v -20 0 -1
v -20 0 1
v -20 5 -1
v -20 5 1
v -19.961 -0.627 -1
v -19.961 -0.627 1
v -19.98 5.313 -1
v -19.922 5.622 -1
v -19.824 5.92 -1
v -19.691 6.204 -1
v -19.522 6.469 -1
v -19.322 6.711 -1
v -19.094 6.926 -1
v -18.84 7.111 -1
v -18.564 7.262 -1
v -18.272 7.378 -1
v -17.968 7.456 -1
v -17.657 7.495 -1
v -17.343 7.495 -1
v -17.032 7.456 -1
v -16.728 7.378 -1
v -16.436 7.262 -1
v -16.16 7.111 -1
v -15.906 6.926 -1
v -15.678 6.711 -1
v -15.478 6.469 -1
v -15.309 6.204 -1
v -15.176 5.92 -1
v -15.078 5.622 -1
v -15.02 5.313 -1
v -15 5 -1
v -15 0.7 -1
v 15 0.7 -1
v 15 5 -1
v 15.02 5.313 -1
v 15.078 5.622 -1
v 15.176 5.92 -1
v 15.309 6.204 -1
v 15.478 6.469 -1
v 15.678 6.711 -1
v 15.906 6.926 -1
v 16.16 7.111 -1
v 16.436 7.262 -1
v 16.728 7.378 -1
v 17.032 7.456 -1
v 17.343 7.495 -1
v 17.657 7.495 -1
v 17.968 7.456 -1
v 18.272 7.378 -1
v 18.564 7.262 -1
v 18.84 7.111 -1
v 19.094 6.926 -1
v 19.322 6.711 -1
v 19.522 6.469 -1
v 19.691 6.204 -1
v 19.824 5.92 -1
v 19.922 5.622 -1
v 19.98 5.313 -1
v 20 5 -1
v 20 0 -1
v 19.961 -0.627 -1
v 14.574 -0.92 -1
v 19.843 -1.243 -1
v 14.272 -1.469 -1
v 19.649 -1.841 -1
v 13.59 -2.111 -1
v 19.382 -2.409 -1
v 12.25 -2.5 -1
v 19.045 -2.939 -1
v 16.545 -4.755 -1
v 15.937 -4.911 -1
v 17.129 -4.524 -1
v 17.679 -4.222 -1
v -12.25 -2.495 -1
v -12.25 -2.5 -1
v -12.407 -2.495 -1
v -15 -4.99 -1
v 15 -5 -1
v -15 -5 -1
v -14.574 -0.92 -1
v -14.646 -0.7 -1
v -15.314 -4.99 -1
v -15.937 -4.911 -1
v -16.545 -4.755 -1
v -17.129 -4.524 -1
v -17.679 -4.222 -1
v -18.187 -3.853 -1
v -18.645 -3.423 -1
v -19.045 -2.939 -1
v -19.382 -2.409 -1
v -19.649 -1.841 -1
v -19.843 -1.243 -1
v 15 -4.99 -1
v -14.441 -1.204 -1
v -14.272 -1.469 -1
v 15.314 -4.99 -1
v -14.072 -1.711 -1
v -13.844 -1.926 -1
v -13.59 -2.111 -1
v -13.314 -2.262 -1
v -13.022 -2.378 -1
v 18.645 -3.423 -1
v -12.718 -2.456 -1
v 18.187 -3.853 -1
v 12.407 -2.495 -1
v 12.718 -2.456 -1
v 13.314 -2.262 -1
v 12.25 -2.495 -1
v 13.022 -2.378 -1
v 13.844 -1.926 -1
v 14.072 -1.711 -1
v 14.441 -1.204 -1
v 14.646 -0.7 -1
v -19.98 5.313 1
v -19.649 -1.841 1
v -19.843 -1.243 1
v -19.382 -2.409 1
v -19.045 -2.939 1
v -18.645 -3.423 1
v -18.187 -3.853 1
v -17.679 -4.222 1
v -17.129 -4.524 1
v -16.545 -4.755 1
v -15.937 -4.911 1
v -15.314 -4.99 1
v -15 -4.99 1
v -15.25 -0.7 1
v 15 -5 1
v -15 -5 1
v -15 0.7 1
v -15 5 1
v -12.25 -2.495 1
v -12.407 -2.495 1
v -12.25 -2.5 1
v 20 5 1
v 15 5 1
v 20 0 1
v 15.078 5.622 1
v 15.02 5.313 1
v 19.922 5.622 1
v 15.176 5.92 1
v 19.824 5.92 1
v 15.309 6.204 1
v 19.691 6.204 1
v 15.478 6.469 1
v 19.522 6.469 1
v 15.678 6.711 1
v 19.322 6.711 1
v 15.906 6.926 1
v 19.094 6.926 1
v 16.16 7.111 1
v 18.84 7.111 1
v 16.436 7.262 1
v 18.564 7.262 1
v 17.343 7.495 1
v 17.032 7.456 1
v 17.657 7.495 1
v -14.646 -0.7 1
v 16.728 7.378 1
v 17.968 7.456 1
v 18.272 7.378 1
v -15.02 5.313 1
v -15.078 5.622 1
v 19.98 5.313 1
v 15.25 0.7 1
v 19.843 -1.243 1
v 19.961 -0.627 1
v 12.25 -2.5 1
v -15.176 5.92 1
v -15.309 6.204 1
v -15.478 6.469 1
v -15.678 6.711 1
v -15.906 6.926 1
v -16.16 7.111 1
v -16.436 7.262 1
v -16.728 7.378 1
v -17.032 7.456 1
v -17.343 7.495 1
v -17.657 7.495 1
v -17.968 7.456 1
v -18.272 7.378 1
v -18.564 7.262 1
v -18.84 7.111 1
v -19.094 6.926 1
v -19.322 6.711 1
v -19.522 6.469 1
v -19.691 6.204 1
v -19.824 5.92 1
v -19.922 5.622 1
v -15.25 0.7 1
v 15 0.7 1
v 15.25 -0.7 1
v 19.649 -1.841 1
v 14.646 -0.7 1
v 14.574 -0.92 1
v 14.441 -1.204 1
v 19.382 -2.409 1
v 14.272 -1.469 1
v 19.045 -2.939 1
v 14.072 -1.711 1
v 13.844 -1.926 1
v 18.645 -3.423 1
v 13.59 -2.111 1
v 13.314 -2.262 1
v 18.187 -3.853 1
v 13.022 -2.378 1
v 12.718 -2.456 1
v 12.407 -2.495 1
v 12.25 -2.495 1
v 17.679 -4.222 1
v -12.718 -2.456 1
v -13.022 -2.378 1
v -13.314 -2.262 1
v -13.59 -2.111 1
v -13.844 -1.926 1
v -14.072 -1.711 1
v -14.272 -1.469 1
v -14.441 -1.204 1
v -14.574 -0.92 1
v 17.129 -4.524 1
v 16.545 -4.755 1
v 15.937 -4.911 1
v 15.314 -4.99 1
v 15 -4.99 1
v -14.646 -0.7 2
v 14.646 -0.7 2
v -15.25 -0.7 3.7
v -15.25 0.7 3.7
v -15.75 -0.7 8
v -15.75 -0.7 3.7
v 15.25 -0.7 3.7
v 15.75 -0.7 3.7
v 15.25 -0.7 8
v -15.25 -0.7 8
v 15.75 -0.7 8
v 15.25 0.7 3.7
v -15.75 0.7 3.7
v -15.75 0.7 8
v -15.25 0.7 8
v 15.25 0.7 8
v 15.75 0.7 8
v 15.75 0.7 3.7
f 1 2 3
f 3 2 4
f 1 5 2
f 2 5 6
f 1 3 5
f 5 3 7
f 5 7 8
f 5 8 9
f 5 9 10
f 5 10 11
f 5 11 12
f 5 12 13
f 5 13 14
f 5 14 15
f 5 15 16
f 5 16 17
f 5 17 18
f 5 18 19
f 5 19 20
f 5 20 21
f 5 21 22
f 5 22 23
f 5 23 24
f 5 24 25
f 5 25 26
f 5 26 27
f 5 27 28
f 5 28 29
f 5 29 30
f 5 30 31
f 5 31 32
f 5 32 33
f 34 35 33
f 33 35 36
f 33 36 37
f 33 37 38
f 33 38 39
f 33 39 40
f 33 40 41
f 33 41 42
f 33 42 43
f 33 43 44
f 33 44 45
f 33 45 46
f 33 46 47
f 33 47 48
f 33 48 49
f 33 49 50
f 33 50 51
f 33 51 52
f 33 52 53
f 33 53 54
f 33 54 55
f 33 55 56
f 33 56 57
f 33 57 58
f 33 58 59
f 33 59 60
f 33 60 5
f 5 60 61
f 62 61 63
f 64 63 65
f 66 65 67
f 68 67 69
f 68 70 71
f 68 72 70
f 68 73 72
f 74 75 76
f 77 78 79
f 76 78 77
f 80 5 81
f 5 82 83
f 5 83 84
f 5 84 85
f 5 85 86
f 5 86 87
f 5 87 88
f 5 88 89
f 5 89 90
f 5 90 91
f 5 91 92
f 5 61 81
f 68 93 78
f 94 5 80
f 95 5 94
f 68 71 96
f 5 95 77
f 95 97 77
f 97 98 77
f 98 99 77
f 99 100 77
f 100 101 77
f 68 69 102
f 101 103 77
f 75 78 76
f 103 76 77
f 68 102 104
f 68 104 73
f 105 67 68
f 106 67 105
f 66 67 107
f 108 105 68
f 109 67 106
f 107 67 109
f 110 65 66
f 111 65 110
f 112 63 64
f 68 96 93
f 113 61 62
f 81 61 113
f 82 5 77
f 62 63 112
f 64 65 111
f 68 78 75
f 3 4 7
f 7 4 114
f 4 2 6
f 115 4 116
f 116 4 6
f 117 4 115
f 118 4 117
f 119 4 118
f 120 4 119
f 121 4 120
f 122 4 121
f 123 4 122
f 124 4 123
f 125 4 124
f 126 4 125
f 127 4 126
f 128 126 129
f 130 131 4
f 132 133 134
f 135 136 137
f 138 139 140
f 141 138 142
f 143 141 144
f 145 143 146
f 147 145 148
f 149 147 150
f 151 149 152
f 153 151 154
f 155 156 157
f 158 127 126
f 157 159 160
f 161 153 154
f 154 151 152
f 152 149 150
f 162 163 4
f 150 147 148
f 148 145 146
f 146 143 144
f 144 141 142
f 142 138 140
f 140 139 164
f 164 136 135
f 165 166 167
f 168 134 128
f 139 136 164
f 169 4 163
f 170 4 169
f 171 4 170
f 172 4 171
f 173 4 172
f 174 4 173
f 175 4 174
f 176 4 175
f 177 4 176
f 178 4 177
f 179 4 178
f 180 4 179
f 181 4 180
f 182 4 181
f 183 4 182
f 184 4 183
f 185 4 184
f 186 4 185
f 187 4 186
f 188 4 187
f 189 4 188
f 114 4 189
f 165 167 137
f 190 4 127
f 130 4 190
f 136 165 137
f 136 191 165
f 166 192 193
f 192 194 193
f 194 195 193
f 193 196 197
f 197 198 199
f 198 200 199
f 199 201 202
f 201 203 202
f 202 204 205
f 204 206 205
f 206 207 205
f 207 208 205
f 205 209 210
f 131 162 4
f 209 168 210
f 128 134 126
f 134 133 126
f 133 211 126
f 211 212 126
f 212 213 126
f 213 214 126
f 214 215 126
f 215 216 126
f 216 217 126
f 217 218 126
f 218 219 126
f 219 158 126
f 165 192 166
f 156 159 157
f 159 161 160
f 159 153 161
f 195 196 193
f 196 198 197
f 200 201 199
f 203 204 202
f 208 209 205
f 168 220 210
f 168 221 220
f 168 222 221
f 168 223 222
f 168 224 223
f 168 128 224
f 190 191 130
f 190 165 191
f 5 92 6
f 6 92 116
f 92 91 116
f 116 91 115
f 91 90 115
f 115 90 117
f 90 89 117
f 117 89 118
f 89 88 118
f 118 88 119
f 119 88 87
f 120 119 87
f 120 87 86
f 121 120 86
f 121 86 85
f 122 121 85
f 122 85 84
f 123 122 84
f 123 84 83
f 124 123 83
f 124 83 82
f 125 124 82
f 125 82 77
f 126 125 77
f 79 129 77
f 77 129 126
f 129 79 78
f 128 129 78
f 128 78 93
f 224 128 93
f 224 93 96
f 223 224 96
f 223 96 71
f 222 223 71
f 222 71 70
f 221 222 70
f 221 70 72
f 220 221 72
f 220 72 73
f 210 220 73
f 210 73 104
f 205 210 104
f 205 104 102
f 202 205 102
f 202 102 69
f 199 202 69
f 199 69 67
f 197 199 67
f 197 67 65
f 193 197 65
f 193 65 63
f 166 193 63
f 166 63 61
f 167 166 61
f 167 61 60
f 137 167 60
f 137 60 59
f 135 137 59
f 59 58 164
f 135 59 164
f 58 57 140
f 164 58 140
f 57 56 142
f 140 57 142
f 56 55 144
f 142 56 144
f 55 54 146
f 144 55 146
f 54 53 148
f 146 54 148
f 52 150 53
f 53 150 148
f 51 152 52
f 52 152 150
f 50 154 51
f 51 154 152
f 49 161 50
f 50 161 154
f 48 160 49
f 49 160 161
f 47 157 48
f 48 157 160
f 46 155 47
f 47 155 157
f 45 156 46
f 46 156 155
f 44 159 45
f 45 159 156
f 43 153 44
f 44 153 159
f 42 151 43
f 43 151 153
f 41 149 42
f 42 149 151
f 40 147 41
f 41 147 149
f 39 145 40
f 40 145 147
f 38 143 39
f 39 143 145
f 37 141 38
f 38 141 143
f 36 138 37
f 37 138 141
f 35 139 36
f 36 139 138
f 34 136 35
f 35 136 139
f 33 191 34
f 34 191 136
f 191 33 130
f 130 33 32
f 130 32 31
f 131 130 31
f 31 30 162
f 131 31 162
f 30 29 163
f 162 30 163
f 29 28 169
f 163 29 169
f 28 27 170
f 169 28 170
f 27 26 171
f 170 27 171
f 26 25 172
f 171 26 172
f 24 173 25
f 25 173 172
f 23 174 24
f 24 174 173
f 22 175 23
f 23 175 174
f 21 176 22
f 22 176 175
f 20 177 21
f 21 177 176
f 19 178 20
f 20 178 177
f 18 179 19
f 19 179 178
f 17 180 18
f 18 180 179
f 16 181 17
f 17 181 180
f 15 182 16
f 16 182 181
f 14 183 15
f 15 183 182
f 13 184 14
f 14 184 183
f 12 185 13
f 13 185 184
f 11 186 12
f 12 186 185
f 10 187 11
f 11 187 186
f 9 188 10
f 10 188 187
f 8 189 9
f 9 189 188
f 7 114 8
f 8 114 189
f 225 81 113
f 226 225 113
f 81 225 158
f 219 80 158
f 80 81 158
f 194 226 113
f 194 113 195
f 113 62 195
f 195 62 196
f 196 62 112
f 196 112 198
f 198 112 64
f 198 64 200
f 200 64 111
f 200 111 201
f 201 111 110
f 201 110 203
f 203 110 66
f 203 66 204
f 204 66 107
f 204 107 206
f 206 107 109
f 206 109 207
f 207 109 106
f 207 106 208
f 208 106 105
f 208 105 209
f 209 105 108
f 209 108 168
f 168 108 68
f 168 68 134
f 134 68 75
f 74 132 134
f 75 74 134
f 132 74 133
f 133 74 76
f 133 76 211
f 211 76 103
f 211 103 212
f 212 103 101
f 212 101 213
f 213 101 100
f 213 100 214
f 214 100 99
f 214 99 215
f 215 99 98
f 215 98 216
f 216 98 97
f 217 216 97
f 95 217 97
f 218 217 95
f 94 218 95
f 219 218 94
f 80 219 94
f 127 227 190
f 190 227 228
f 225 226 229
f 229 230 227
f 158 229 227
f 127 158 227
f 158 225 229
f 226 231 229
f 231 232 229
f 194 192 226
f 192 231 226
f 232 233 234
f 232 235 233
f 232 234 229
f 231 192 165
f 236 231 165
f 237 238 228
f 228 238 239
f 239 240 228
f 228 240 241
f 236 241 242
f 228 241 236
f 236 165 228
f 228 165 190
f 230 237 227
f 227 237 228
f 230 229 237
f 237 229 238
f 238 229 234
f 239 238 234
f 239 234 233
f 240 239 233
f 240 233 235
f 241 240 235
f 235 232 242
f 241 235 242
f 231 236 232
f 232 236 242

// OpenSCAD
$fn = 50;
// l: length of the gap
// lower wall is l + corr long, higher wall is l + corr + ld long
// w is half the width of the whole part but it extends below with
// half-circles, the circle radius of that circle is
// circ_r / 2 = w / 4
// th is the thickness of the wall, gp is the thickness of the ground
// plane. The heights of h1 and h2 are the whole wall height and the
// lower (less long) part h2. Finally gw is the gap width (minus half
// the wall width).

module wpart (l, corr, ld, w, th, gp, h1, h2, gw)
{
    circ_r = w / 2;
    difference () {
        union () {
            cube ([l, w, gp], center = true);
            translate ([ l / 2, 0 , 0])
                cylinder (r = circ_r, h = gp, center = true);
            translate ([-l / 2, 0 , 0])
                cylinder (r = circ_r, h = gp, center = true);
            translate ([0, 0, (h1 + 1) / 2])
                cube ([l + corr, th, h1 + 1], center = true);
            translate ([0, 0, (h1 - h2) / 2 + gp / 2 + h2])
                cube ([l + ld + corr, th, h1 - h2], center = true);
        }
        difference () {
            union () {
                translate ([0, -gw / 2, 0])
                    cube ([l - corr - circ_r, gw, 2 * gp], center = true);
                translate ([ (l - corr) / 2 - gw, 0, 0])
                    cylinder (r = gw, h = 2 * gp, center = true);
                translate ([-(l - corr) / 2 + gw, 0, 0])
                    cylinder (r = gw, h = 2 * gp, center = true);
            }
            translate ([0, l / 2 - th / 2, 0]) cube (l, center = true);
        }
        translate ([0, w / 2 + th / 2, 0])
            cube ([2 * l, w, 2 * gp], center = true);
    }
    translate ([ l / 2 + circ_r / 2, circ_r / 2, 0])
        cube ([circ_r, circ_r, gp], center= true);
    translate ([ l / 2 + circ_r / 2, circ_r, 0])
        cylinder (r = circ_r / 2, h = gp, center = true);
    translate ([-l / 2 - circ_r / 2, circ_r / 2, 0])
        cube ([circ_r, circ_r, gp], center= true);
    translate ([-l / 2 - circ_r / 2, circ_r, 0])
        cylinder (r = circ_r / 2, h = gp, center = true);
}

wpart (30, 0.5, 1, 10, 1.4, 2, 7, 2.7, 2.5);
